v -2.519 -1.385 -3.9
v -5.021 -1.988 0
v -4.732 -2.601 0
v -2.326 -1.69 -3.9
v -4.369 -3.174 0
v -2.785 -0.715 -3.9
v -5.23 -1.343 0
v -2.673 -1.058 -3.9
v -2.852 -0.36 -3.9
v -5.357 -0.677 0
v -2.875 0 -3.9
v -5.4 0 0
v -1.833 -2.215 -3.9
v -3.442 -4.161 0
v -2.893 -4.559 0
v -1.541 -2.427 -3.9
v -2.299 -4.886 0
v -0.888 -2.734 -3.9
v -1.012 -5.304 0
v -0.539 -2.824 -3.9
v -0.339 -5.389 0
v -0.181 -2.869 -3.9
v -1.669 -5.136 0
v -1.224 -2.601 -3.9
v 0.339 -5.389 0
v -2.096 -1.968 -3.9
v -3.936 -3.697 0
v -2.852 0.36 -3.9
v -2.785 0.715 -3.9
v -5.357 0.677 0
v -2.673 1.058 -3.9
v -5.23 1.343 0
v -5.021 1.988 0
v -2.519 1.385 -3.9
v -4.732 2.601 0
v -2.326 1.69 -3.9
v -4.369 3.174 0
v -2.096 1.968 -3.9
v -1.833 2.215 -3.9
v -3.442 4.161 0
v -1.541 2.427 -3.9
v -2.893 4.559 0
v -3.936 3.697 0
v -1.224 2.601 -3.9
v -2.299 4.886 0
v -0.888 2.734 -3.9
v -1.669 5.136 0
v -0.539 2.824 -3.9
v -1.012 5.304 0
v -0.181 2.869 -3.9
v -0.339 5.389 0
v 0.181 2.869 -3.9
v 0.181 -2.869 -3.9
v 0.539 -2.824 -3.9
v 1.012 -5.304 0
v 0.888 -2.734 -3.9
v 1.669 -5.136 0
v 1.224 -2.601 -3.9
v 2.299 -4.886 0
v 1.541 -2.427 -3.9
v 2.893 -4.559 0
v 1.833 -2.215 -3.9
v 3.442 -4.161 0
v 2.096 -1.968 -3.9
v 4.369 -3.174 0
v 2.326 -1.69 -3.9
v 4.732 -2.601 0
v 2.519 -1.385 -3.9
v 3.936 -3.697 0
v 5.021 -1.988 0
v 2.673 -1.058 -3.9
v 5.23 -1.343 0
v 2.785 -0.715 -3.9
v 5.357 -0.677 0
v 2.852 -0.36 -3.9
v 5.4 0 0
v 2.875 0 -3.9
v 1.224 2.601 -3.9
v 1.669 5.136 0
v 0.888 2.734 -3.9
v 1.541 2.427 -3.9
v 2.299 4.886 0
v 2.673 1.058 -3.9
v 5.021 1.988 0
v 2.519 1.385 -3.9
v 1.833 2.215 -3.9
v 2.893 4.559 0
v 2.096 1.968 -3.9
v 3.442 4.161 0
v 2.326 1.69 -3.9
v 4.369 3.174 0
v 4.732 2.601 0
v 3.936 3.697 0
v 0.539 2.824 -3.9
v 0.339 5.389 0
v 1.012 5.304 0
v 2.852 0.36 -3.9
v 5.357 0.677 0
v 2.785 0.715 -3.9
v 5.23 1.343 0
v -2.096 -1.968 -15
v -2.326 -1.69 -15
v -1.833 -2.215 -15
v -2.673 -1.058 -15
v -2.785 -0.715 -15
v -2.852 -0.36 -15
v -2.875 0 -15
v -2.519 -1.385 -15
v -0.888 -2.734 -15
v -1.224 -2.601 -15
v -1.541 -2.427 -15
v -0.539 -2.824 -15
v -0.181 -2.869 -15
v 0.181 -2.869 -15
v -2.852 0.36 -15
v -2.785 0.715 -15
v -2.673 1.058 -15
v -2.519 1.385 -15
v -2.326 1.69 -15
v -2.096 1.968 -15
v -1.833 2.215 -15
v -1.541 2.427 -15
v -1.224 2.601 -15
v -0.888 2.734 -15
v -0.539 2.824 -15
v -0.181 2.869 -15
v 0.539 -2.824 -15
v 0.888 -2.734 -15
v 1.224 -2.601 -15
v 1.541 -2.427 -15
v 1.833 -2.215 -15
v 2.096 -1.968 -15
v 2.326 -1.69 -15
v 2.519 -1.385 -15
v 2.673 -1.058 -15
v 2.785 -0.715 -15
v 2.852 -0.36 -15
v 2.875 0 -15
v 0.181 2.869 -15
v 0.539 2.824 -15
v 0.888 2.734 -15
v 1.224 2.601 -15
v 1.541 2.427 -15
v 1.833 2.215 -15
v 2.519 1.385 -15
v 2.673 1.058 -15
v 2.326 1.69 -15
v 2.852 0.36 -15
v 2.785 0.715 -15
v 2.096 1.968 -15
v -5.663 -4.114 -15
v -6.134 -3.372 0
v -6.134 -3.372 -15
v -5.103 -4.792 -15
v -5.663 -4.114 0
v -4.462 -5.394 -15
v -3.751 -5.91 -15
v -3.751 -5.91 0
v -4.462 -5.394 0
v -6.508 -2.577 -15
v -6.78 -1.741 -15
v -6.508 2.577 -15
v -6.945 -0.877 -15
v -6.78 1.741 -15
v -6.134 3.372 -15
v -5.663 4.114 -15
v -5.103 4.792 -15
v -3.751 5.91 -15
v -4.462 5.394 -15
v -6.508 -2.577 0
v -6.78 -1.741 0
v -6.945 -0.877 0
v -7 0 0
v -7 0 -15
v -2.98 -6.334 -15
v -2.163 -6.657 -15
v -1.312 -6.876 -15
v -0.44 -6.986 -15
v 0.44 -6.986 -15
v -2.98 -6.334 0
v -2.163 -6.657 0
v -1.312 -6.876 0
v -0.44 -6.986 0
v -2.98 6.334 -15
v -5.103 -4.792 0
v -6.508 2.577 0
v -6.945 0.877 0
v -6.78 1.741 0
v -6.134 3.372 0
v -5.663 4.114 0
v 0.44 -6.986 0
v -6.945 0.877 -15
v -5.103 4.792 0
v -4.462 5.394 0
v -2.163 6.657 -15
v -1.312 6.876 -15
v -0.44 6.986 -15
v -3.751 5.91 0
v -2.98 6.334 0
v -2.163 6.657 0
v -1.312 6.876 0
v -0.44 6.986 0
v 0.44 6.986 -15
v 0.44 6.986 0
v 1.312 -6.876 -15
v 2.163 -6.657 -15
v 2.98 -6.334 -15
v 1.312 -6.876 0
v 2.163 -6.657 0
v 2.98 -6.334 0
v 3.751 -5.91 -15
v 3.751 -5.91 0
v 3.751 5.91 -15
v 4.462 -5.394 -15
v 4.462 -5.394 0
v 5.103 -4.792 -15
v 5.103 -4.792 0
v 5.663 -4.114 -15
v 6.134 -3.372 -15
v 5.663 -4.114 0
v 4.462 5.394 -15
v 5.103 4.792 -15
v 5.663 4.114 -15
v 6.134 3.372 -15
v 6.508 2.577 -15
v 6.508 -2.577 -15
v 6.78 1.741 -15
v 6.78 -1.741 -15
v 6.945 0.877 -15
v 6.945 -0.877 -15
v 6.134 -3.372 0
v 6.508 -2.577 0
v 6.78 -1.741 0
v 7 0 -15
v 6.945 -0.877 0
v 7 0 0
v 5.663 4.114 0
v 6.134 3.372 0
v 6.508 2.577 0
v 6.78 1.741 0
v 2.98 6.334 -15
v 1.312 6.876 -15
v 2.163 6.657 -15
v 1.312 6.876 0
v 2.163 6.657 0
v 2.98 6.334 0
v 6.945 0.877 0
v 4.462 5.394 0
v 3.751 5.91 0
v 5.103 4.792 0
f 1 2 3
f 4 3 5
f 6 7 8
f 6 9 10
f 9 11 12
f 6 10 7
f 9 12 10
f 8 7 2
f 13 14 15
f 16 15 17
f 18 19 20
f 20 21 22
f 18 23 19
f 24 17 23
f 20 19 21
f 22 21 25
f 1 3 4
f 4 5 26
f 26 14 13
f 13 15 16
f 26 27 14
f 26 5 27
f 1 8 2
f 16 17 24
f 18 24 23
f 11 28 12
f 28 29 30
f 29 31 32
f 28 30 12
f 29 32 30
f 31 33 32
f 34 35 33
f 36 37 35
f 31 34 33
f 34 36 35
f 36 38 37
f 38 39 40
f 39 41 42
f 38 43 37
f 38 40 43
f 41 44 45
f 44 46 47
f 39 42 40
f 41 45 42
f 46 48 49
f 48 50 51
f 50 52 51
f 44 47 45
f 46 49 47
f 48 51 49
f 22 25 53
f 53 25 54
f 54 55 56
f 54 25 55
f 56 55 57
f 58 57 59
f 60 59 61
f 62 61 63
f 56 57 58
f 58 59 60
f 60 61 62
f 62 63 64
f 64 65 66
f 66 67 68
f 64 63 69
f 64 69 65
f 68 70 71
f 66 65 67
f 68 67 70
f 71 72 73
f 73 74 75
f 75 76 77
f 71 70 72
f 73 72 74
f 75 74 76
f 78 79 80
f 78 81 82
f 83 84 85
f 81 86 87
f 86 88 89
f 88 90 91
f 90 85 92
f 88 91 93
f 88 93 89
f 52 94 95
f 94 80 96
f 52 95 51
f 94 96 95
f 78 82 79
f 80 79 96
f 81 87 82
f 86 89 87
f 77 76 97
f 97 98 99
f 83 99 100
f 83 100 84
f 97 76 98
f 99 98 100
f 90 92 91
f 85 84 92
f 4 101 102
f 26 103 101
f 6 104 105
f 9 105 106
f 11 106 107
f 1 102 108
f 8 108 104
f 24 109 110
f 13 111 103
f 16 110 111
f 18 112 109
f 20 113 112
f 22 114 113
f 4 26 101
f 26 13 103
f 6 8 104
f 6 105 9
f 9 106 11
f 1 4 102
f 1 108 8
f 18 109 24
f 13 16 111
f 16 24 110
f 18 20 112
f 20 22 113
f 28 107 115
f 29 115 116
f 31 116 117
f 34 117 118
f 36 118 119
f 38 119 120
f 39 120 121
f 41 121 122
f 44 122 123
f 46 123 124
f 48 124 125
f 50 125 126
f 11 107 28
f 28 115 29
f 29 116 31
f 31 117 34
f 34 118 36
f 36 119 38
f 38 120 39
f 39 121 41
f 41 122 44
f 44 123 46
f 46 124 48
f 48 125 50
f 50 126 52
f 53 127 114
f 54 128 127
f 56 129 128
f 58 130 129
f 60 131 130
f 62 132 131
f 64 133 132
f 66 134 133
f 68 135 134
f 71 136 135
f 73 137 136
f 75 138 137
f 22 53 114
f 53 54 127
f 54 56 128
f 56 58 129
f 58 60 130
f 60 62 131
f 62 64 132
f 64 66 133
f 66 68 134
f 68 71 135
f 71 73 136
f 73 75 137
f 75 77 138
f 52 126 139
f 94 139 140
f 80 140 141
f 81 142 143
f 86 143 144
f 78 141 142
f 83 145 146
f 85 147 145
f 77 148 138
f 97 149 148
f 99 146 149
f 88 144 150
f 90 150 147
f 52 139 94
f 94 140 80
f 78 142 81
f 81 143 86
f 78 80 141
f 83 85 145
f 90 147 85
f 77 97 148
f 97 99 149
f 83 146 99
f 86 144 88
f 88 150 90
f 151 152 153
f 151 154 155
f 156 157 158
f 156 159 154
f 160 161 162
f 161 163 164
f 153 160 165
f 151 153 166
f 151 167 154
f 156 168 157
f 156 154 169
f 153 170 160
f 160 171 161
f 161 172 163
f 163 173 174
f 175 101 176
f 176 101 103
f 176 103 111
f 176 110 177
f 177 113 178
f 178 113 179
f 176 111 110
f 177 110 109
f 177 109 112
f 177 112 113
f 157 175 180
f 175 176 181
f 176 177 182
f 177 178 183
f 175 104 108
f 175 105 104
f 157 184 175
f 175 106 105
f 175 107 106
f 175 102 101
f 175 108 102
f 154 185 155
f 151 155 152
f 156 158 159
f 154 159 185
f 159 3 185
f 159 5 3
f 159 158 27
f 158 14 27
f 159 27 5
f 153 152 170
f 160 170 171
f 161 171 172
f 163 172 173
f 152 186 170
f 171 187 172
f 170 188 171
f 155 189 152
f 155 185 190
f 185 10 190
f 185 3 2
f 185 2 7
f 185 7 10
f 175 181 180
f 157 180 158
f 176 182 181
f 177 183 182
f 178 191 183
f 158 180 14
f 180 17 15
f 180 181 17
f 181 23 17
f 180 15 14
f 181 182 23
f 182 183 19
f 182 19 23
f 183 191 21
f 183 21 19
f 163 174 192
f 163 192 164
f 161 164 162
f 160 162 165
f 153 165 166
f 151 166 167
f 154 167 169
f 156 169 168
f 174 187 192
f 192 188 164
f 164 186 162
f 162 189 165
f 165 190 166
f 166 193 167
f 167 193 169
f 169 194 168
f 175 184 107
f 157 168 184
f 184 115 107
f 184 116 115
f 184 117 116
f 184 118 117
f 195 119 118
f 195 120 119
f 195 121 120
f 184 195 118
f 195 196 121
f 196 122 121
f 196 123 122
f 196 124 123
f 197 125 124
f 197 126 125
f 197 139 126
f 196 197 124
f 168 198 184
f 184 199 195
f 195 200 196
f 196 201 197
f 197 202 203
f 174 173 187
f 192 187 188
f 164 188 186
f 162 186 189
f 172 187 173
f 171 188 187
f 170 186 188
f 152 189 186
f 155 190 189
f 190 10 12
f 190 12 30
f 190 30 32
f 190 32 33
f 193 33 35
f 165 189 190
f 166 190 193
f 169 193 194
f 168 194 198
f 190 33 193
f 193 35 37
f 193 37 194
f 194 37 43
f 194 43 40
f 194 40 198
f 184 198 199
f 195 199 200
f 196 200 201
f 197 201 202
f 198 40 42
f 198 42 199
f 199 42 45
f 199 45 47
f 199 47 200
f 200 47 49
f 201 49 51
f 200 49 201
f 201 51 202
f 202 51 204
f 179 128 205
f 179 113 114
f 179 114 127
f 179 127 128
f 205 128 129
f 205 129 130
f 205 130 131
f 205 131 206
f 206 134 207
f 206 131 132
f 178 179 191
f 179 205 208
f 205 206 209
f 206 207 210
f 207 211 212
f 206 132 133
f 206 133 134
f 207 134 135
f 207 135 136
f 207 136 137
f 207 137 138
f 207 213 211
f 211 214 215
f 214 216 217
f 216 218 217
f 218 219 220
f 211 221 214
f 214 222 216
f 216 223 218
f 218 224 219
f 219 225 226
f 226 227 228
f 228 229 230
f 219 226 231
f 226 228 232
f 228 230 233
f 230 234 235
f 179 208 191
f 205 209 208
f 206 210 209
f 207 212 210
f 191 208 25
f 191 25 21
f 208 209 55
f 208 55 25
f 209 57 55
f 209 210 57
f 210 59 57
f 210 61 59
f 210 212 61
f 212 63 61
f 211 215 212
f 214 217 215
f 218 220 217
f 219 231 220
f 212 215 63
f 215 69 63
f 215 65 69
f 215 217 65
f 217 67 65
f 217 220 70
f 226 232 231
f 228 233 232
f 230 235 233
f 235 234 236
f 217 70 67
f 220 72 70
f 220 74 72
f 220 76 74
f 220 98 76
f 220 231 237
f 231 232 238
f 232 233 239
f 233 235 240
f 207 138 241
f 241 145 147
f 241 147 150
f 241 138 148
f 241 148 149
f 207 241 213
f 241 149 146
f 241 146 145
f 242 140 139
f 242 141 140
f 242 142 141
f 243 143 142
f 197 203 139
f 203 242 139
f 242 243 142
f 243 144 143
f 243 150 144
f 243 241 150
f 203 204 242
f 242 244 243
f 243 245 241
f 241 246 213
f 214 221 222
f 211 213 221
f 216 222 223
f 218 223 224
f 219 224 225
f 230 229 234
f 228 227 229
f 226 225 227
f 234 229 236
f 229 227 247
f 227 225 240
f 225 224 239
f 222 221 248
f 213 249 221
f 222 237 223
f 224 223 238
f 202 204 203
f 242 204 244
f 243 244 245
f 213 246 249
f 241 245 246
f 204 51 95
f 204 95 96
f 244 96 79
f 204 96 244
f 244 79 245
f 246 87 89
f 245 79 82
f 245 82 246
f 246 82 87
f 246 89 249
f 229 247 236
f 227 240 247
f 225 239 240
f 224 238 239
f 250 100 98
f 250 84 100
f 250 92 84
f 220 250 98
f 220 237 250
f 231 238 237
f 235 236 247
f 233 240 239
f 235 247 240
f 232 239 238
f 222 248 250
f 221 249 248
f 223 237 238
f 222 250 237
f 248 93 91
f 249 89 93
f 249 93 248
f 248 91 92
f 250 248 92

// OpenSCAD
$fn = 50;

difference() {
	union() {
		translate(v = [0, 0, -15.0]) {
			cylinder(h = 15, r = 7.0);
		}
	}
	union() {
		translate(v = [0, 0, 0]) {
			rotate(a = [0, 0, 0]) {
				difference() {
					union() {
						translate(v = [0, 0, -18.0]) {
							cylinder(h = 18, r = 2.6);
						}
						translate(v = [0, 0, -3.9]) {
							cylinder(h = 3.9, r1 = 2.875, r2 = 5.4);
						}
						translate(v = [0, 0, -18.0]) {
							cylinder(h = 18, r = 2.875);
						}
						translate(v = [0, 0, -18.0]) {
							cylinder(h = 18, r = 2.6);
						}
					}
					union();
				}
			}
		}
	}
}
